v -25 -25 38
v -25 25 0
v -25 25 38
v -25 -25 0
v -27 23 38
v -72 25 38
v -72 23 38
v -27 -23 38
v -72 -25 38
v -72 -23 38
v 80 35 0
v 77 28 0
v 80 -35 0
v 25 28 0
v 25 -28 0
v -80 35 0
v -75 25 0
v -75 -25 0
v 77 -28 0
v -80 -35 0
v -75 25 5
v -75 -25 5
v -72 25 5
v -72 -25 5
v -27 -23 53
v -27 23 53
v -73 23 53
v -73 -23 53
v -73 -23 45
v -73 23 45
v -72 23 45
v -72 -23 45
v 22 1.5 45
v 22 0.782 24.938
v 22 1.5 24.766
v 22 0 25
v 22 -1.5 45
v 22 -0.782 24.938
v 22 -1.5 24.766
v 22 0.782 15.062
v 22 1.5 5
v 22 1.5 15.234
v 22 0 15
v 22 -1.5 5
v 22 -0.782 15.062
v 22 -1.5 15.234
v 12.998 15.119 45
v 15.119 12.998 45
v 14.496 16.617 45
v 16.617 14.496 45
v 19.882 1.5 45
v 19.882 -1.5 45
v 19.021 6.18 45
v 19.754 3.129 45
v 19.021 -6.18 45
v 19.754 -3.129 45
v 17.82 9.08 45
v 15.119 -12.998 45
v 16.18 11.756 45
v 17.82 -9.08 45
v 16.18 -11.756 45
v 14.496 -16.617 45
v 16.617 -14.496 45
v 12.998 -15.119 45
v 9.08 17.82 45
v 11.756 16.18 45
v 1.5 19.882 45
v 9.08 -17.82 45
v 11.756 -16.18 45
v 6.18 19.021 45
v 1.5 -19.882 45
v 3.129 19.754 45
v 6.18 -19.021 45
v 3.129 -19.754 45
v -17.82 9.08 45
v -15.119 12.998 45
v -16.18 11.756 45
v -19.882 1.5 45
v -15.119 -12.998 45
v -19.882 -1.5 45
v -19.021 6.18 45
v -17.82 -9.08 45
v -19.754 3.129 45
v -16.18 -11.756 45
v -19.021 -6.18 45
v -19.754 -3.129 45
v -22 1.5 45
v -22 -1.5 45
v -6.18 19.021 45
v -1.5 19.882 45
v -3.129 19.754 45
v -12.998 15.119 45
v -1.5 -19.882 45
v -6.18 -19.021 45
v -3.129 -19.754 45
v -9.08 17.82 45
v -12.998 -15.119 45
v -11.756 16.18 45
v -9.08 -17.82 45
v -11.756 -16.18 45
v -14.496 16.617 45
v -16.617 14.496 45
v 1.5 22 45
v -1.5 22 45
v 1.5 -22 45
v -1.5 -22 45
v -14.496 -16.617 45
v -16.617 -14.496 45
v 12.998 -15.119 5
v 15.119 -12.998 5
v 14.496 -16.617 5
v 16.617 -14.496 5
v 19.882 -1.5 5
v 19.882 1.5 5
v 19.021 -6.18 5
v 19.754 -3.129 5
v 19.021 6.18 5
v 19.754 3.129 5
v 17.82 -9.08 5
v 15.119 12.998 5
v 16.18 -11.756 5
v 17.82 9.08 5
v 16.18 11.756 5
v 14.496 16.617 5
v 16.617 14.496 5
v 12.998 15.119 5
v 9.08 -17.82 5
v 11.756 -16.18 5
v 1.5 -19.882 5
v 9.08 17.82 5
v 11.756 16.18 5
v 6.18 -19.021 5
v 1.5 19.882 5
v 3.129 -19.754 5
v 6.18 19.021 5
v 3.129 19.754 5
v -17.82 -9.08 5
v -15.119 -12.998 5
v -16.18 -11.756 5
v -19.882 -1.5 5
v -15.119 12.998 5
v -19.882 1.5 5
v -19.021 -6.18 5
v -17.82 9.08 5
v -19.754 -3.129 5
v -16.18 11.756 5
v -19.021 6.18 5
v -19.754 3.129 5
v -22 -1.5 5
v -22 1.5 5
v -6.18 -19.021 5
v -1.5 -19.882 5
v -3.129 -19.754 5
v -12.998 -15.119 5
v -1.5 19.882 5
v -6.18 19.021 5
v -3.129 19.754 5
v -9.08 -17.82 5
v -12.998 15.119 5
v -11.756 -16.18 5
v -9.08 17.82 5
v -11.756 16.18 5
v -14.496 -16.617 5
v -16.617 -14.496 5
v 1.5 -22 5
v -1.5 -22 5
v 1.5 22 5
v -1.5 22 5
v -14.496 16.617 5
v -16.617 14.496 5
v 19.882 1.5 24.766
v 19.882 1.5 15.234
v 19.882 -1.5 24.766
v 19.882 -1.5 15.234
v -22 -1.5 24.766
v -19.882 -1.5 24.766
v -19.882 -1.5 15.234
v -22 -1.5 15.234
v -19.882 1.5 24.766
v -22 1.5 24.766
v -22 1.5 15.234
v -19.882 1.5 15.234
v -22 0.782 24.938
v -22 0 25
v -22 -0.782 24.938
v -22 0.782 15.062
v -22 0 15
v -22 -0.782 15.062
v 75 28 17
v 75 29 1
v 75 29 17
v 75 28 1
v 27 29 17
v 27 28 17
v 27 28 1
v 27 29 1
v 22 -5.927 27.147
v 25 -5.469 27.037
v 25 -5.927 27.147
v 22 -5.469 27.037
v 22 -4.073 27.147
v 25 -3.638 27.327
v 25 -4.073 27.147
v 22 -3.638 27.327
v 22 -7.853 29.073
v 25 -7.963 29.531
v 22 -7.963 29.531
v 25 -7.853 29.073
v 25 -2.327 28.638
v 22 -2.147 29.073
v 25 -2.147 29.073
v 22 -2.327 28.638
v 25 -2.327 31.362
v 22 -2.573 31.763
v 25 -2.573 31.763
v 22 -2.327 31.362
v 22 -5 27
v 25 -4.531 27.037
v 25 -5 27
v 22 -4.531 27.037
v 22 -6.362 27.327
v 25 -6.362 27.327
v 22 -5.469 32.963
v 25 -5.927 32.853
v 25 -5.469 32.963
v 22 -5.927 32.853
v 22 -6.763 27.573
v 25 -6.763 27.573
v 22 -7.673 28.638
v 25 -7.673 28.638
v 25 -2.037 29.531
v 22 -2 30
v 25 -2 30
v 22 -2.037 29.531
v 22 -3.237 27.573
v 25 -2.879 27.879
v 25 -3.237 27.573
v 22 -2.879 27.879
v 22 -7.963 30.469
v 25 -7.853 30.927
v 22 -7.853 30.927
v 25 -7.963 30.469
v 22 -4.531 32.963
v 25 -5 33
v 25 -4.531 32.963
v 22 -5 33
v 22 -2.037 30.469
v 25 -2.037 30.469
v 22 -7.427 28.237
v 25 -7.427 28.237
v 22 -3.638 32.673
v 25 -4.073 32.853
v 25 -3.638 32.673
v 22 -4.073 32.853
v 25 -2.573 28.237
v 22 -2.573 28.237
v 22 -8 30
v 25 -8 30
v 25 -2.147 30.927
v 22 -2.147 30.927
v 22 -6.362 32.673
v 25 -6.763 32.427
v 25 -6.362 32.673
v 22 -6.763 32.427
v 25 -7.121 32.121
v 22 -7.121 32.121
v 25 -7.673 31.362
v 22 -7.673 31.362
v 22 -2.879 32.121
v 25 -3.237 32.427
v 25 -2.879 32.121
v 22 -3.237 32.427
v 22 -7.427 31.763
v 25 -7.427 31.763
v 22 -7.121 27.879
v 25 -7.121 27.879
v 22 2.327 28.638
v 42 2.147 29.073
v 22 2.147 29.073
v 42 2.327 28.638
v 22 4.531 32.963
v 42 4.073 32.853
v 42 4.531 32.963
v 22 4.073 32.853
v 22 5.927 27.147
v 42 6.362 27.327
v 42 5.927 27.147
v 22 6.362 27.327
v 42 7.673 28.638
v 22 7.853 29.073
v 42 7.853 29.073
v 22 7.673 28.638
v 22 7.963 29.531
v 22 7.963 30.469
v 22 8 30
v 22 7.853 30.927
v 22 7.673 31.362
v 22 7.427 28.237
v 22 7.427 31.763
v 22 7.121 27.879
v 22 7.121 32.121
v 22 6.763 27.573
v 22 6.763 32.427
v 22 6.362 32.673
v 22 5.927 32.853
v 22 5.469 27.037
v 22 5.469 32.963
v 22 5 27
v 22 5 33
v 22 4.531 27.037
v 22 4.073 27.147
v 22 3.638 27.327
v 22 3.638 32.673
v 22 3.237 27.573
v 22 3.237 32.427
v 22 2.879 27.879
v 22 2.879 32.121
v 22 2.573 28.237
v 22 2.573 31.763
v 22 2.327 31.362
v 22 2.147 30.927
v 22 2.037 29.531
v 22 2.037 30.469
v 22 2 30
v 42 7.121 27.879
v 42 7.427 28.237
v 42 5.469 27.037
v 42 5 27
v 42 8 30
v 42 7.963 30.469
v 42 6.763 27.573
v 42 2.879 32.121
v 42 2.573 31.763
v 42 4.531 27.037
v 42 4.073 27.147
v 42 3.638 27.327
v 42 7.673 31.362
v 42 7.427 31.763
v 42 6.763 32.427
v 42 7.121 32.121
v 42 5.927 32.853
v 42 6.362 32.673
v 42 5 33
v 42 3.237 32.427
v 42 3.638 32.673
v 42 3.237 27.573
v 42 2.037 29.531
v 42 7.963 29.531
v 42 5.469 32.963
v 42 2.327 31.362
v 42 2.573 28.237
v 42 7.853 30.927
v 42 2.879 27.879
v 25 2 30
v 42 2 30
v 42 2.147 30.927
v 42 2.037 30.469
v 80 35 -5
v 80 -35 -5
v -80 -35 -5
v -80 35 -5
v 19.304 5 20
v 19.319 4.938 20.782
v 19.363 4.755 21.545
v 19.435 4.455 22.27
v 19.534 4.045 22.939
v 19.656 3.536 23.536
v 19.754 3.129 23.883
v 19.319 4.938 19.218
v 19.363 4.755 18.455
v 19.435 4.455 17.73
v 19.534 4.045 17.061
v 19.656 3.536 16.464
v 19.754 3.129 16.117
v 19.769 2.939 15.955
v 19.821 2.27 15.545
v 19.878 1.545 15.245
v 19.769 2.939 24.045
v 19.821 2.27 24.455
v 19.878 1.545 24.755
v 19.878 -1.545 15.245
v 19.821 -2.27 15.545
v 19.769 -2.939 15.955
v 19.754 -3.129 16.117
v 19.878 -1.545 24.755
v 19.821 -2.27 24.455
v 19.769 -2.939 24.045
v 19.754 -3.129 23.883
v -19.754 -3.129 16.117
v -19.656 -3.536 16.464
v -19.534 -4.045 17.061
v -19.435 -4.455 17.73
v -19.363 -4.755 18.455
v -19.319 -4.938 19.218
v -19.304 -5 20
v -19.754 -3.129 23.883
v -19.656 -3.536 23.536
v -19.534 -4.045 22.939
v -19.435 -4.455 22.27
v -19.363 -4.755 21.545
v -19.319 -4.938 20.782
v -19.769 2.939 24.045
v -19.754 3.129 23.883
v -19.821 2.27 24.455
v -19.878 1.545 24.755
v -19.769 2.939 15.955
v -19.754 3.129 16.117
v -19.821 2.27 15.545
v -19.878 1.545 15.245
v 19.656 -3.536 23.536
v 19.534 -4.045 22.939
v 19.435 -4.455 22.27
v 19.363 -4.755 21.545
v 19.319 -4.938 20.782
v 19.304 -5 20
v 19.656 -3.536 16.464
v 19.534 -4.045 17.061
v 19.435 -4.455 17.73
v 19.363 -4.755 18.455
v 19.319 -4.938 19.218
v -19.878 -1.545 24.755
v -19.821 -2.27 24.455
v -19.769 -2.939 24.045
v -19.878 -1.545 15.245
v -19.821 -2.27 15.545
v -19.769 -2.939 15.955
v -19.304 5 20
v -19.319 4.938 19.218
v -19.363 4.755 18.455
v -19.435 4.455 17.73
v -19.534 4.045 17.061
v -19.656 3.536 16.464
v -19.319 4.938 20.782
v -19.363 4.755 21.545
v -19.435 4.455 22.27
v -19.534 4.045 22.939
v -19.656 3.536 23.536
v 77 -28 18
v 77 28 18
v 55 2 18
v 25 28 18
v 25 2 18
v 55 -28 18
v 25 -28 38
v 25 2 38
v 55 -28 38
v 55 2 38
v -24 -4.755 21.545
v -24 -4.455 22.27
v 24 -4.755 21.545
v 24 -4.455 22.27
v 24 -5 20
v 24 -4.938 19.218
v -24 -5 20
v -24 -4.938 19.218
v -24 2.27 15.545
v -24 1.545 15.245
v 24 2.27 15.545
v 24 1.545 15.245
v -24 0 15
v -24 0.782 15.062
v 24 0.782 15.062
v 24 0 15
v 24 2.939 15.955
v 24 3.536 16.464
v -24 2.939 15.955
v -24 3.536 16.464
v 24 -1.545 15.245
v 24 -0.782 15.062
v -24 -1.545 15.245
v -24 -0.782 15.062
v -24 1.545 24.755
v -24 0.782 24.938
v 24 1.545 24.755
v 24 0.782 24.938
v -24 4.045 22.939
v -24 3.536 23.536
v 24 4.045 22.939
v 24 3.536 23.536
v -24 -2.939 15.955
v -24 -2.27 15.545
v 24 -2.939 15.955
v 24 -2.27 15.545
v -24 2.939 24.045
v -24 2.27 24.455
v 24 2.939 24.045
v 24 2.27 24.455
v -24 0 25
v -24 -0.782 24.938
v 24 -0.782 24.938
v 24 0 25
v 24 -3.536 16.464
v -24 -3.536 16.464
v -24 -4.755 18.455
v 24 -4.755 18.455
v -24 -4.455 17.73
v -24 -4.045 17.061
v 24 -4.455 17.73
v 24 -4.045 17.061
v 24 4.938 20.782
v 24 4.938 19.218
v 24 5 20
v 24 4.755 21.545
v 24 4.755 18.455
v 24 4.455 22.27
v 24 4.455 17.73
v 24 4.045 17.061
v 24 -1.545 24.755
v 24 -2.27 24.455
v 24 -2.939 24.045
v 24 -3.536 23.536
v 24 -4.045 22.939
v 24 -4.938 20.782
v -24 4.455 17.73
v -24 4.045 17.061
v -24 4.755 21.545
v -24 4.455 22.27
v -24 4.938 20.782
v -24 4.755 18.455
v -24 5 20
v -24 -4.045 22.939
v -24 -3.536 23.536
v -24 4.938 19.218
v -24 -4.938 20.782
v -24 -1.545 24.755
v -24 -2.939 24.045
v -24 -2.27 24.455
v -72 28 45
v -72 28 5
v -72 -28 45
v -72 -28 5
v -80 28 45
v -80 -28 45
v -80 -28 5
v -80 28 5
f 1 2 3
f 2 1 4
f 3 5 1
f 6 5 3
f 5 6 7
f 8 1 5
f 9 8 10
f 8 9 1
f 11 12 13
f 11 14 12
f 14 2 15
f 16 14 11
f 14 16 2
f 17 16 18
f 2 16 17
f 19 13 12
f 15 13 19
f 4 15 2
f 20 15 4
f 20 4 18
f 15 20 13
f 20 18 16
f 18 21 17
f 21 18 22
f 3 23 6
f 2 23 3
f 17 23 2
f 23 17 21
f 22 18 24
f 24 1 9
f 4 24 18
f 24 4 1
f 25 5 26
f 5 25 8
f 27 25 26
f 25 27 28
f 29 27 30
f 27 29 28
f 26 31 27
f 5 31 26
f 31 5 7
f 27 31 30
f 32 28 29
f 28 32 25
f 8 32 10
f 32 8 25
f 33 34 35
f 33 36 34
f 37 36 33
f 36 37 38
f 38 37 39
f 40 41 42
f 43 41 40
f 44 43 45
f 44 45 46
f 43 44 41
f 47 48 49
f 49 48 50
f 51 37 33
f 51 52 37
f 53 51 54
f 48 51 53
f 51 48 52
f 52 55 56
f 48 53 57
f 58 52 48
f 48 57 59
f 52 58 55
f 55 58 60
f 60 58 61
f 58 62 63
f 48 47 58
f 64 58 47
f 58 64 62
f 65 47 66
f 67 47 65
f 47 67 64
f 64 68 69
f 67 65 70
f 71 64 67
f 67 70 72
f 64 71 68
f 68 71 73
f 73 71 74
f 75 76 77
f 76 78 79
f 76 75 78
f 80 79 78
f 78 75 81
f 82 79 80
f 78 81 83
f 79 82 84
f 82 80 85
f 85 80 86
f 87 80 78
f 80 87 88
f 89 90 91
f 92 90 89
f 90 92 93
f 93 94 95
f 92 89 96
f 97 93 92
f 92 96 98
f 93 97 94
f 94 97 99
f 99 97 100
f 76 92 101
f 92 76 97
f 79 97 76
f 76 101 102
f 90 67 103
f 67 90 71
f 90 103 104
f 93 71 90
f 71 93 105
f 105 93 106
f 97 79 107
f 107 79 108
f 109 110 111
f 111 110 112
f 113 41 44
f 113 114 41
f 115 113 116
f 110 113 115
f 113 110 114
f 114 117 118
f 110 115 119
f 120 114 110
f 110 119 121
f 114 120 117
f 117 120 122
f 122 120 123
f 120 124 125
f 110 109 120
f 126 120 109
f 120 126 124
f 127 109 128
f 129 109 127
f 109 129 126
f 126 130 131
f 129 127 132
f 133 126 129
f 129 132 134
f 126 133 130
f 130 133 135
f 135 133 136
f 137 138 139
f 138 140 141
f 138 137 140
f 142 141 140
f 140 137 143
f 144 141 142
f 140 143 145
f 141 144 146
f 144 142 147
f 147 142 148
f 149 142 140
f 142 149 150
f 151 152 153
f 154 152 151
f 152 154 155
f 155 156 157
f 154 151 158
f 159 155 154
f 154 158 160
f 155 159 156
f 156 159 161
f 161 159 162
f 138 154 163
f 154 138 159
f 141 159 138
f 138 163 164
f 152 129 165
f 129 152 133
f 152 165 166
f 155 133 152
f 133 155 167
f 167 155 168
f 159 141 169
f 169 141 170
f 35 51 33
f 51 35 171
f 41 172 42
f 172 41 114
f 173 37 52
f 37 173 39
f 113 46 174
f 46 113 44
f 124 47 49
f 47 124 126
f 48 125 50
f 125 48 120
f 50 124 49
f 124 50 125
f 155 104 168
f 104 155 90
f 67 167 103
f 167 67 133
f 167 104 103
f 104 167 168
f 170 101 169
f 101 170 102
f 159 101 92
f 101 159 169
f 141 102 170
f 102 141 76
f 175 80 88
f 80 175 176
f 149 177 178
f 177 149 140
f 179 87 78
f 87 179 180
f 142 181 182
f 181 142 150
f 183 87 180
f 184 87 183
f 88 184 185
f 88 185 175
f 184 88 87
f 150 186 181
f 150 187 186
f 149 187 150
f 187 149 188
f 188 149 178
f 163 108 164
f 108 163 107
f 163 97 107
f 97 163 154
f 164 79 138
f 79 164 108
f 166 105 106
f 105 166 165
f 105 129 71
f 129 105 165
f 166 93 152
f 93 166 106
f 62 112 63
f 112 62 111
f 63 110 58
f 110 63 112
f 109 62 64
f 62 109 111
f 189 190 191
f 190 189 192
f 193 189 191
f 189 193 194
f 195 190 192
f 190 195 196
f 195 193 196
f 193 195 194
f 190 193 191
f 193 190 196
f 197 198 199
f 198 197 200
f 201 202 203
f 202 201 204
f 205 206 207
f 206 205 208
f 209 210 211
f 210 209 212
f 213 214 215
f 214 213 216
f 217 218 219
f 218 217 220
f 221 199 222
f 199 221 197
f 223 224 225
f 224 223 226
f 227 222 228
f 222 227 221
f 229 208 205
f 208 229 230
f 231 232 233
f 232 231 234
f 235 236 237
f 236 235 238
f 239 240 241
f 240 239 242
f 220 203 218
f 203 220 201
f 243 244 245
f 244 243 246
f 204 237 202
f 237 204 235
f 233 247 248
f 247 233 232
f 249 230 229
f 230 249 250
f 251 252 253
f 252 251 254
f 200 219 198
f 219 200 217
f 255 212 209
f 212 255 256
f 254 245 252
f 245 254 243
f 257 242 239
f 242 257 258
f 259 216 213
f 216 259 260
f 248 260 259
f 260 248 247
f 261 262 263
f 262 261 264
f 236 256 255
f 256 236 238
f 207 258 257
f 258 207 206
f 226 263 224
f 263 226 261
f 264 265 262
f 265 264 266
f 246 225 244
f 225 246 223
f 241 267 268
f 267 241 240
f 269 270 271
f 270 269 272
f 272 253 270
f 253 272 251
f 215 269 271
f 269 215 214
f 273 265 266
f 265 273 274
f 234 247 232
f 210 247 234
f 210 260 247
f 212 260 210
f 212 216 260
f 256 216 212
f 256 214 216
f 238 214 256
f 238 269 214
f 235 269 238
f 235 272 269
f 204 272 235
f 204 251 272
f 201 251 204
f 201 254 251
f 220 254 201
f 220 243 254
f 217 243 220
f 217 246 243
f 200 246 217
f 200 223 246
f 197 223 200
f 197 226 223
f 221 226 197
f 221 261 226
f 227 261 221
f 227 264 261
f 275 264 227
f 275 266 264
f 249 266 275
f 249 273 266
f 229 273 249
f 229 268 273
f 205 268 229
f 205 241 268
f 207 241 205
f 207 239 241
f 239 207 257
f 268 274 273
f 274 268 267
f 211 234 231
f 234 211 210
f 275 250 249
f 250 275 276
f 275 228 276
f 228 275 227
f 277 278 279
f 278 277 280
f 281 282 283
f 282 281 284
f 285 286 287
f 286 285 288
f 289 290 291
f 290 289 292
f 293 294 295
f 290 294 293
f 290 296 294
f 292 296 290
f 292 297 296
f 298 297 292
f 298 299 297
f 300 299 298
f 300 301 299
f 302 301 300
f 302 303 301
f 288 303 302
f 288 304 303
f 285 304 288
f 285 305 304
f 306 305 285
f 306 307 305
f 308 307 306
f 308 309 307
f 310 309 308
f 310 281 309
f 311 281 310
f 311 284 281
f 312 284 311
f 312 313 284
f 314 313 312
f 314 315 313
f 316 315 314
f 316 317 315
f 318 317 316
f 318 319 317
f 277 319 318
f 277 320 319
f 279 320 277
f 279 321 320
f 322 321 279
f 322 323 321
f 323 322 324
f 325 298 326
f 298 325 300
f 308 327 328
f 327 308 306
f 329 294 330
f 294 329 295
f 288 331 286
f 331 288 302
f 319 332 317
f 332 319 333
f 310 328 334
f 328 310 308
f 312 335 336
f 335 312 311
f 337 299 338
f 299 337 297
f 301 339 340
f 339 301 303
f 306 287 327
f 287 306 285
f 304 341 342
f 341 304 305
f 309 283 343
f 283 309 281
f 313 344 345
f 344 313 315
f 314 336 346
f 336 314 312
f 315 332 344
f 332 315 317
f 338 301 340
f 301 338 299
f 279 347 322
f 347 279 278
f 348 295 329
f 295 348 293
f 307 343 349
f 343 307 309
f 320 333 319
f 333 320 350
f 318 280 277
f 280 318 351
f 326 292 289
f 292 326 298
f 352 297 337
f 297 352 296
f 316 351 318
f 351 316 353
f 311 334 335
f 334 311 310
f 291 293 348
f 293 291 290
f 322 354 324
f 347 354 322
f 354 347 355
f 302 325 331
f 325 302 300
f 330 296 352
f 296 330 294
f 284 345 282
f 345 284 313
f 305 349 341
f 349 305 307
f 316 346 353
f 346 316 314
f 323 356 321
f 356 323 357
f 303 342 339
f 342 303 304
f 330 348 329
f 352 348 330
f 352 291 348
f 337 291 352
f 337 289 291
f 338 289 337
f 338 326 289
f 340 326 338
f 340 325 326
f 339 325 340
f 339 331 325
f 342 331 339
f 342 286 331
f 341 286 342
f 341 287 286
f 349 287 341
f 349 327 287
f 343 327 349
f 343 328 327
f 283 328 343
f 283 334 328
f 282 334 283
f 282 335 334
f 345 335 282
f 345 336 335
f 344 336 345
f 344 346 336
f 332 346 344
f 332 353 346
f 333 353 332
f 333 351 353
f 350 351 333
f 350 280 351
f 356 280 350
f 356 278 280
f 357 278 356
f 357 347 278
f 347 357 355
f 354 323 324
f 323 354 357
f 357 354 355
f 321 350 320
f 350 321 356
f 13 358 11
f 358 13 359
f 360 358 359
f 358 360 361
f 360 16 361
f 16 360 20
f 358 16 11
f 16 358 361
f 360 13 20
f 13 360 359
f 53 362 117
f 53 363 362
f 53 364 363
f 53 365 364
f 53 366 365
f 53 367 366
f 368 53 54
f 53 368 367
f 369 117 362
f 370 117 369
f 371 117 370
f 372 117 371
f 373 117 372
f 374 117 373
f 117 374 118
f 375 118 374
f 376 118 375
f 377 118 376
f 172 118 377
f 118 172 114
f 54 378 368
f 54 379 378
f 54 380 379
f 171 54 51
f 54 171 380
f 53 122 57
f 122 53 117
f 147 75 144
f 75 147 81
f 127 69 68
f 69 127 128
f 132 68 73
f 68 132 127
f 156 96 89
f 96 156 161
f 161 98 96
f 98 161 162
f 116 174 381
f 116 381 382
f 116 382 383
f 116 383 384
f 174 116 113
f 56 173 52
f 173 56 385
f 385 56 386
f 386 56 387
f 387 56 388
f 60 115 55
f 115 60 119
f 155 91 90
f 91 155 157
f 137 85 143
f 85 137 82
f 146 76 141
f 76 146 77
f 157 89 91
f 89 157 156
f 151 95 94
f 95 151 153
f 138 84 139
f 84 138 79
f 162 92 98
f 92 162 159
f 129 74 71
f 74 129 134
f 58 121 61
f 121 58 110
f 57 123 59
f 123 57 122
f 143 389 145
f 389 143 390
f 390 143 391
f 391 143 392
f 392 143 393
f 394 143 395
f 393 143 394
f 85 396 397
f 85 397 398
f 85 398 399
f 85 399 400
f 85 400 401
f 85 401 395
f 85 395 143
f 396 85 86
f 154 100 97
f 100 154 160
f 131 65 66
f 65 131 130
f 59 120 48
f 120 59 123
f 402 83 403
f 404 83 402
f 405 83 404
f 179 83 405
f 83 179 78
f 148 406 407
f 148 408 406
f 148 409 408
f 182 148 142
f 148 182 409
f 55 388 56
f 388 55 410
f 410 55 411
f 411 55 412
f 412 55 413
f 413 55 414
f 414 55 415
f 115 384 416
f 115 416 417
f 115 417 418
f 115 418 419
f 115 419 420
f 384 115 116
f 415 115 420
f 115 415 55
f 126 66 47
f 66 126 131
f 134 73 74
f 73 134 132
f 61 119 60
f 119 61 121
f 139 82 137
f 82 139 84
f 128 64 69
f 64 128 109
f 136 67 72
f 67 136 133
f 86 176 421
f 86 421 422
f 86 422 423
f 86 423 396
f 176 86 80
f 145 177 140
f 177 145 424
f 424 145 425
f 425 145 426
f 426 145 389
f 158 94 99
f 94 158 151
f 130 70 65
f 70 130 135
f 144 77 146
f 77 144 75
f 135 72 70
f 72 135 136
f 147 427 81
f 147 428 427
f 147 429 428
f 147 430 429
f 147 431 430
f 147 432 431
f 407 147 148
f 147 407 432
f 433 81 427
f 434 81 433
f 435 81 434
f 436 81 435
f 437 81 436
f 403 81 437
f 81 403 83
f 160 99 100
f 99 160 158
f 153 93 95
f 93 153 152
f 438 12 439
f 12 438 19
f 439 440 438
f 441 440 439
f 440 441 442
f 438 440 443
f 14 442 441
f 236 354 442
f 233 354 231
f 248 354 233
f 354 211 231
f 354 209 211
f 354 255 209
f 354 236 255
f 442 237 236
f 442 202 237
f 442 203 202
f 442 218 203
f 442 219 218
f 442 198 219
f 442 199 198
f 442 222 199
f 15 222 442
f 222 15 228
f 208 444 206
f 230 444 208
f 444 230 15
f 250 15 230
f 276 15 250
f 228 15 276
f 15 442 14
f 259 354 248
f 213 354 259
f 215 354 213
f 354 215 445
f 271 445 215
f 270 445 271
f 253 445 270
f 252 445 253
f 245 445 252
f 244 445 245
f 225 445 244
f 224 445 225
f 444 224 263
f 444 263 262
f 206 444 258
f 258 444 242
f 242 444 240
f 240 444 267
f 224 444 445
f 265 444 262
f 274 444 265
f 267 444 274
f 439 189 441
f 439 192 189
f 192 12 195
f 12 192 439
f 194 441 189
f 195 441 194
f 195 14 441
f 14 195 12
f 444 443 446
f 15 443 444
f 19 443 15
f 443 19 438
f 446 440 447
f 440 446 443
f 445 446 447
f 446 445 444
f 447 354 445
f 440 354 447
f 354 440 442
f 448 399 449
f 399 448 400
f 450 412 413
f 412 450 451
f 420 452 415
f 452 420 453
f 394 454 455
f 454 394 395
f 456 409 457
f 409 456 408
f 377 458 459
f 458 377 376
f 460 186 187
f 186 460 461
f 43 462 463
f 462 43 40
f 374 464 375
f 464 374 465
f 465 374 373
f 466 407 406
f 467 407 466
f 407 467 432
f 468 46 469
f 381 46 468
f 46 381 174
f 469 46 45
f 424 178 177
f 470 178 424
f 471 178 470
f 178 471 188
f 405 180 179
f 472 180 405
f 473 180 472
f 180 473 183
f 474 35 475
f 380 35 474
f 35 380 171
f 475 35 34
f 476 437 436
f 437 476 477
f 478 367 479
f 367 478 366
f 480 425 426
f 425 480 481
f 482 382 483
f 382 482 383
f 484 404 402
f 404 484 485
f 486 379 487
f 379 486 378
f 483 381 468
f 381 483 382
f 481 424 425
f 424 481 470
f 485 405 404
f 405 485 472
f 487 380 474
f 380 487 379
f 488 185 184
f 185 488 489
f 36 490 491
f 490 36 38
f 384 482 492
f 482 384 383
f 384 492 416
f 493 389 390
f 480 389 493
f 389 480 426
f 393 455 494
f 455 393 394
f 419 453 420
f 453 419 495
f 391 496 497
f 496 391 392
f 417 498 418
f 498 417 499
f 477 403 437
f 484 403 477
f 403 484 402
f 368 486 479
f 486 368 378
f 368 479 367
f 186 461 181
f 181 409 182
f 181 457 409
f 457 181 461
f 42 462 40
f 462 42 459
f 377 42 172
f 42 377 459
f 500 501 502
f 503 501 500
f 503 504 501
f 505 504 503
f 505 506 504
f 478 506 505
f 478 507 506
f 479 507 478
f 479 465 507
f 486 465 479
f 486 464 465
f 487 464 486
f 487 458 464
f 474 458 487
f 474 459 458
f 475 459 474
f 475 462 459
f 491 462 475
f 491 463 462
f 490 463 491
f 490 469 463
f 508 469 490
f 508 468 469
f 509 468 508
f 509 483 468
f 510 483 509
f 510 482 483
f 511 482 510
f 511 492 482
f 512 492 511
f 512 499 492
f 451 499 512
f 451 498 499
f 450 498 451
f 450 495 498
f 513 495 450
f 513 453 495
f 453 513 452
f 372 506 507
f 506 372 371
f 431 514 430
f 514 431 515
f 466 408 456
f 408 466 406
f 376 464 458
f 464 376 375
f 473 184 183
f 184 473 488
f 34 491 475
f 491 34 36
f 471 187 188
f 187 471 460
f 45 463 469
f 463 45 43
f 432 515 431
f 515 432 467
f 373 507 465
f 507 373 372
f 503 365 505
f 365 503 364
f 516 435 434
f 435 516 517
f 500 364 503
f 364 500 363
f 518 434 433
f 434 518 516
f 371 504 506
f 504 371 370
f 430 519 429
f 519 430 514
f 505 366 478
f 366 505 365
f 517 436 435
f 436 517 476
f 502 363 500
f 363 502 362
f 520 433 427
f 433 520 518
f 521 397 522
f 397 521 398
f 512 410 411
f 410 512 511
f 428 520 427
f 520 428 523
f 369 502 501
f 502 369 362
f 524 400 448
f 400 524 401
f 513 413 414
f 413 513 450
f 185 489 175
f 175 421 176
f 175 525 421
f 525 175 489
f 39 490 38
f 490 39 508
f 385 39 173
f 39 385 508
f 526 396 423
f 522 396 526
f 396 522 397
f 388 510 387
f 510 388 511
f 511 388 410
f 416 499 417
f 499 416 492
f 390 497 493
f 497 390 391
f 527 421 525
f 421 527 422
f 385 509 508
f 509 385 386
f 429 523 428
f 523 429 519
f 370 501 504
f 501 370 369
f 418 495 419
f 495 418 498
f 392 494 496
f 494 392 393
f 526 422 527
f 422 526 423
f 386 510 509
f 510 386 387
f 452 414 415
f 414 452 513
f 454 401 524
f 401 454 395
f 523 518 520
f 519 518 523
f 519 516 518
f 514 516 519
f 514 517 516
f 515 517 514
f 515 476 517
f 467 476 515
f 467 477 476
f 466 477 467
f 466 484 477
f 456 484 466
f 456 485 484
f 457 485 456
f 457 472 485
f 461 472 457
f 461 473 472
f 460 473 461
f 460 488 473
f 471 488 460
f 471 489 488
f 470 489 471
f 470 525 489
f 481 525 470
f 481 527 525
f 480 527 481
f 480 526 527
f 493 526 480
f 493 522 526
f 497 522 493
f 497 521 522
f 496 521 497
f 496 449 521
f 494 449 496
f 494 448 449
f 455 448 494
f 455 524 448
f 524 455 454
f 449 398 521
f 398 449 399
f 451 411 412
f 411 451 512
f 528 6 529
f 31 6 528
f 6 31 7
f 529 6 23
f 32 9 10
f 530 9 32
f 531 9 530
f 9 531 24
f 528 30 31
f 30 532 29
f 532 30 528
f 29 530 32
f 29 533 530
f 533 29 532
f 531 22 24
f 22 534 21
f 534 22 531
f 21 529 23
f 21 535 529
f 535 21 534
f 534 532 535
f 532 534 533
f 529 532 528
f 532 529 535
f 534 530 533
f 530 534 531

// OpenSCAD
// 油電混合動力系統 Hybrid Powertrain
$fn = 40;

// 底盤基板
color([0.32, 0.32, 0.35])
  translate([-80, -35, -5]) cube([160, 70, 5]);

// 汽油引擎（左側，灰色）
color([0.45, 0.45, 0.48]) {
  translate([-75, -25, 0]) cube([50, 50, 38]);
  // 汽缸頭
  translate([-73, -23, 38]) cube([46, 46, 15]);
}
// 引擎品牌文字板
color([0.30, 0.30, 0.33])
  translate([-73, 20, 20]) cube([44, 3, 15]);

// 電動馬達（中央，橘紅）
color([0.85, 0.35, 0.05])
  translate([0, 0, 5]) cylinder(h = 40, r = 20);
// 馬達散熱鰭
color([0.72, 0.28, 0.04])
  for (a = [0:45:360])
    rotate([0, 0, a]) translate([18, -1.5, 5]) cube([4, 3, 40]);

// 電池組（後方，藍色）
color([0.18, 0.28, 0.55])
  translate([25, -28, 0]) cube([52, 56, 18]);
color([0.12, 0.20, 0.42])
  for (y = [-26, -18, -10, -2, 6, 14, 22])
    translate([27, y, 1]) cube([48, 7, 16]);

// 動力控制單元 PCU
color([0.18, 0.18, 0.20])
  translate([25, -28, 18]) cube([30, 30, 20]);

// 共用軸（連接引擎與馬達）
color([0.62, 0.63, 0.65])
  translate([-24, 0, 20]) rotate([0, 90, 0]) cylinder(h = 48, r = 5);

// 高壓線（橘色電纜）
color([0.90, 0.50, 0.05]) {
  translate([22, -5, 30]) rotate([0, 90, 0]) cylinder(h = 20, r = 3);
  translate([22, 5, 30]) rotate([0, 90, 0]) cylinder(h = 20, r = 3);
}

// 散熱水箱（最左）
color([0.55, 0.58, 0.62])
  translate([-80, -28, 5]) cube([8, 56, 40]);
color([0.12, 0.50, 0.80, 0.5])
  translate([-78, -26, 7]) cube([4, 52, 36]);
